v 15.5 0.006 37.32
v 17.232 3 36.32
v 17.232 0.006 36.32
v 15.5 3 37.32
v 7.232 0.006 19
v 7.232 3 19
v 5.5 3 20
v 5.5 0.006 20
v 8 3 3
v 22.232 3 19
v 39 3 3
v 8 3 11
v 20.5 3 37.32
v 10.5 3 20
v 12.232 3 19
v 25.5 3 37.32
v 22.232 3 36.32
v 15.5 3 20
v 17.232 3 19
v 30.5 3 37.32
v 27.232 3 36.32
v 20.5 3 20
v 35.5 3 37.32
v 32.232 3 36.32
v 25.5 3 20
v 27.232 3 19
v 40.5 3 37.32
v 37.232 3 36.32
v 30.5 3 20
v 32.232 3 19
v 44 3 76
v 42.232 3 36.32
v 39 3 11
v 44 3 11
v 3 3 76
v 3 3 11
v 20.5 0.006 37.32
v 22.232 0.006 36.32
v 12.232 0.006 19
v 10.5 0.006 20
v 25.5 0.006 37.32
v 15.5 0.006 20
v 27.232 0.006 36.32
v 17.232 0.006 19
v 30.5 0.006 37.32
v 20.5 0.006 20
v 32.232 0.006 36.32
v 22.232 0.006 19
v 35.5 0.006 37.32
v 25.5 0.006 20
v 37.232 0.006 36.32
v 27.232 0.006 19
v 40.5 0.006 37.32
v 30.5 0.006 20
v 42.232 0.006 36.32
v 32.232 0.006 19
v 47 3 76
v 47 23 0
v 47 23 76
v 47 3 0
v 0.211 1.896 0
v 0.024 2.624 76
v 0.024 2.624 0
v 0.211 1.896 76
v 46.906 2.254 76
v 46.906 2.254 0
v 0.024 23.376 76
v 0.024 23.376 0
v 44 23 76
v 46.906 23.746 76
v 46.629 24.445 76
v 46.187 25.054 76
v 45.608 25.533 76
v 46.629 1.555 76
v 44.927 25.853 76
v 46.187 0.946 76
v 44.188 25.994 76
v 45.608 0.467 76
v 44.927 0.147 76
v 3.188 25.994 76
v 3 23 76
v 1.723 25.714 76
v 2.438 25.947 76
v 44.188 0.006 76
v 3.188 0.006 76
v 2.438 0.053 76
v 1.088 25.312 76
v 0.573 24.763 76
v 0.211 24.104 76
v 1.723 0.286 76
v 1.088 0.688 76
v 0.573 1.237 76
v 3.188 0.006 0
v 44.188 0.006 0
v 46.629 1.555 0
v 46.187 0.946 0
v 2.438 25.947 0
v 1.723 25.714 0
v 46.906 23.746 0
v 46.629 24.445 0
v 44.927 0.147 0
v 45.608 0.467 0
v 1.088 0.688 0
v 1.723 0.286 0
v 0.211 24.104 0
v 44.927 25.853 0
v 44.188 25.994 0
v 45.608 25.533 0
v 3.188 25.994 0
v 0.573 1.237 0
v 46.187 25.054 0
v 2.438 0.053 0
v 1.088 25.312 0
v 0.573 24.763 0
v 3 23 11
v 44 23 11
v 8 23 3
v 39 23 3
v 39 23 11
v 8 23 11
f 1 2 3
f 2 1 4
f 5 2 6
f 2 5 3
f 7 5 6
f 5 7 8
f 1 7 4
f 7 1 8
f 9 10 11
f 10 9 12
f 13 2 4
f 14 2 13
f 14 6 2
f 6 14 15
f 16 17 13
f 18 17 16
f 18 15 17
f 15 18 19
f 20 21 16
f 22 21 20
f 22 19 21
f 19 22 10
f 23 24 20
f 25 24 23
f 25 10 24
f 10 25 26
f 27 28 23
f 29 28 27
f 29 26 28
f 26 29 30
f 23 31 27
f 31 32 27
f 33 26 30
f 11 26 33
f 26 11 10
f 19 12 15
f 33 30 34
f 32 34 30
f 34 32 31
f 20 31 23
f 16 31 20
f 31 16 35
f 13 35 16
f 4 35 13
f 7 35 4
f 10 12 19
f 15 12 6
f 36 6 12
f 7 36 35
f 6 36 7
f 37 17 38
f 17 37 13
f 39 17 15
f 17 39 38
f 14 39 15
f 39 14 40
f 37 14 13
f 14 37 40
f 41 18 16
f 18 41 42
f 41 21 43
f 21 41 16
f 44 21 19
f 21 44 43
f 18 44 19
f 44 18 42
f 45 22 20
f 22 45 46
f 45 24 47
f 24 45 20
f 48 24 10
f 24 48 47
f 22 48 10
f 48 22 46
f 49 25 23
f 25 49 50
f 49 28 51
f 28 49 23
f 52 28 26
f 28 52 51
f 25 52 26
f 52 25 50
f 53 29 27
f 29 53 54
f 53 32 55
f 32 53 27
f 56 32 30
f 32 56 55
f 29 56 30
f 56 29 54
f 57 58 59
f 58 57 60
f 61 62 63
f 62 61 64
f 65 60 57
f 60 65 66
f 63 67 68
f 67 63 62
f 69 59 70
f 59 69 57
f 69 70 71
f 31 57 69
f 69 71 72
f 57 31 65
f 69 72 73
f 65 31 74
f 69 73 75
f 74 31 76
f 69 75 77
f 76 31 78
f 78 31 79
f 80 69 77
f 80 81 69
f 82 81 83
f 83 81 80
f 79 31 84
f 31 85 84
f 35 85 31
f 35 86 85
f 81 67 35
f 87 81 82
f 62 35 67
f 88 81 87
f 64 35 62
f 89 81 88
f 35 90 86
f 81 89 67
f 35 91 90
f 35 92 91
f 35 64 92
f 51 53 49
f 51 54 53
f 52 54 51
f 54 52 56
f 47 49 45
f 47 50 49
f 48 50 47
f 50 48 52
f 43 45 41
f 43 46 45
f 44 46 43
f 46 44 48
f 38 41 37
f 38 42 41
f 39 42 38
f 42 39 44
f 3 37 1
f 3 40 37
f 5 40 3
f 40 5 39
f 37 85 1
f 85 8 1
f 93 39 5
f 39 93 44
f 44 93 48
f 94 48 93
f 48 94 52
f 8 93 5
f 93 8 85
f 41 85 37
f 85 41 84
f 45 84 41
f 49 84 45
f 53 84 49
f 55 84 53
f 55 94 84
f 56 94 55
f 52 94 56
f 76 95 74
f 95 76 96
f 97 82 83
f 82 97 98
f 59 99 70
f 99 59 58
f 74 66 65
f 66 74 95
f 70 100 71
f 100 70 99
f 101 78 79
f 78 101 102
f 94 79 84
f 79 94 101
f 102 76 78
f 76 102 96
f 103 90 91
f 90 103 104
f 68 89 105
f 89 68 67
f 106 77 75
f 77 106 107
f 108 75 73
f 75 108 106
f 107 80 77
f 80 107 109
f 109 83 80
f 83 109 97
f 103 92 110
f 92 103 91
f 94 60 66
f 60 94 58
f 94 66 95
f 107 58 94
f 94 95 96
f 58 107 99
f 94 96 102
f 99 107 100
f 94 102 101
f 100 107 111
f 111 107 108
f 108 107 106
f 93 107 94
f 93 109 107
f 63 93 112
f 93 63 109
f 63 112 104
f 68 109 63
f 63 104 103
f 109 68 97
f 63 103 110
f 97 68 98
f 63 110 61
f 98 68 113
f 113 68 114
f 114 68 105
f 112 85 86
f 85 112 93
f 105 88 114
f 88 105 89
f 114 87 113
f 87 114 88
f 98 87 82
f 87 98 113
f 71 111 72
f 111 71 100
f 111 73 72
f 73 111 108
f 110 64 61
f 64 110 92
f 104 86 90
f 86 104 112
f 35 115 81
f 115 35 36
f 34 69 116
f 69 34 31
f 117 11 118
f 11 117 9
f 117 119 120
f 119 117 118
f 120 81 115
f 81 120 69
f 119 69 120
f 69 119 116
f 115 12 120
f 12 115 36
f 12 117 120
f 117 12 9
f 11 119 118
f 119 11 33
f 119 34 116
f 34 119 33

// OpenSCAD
BB_LENGTH = 75;
BB_WIDTH = 41;
BB_HEIGHT = 20;
CASE_THICKNESS = 3;

union(){
    difference(){
        // exterior box
        translate([3,3,0]){
            $fn=25;
            minkowski(){
                cube([BB_WIDTH, BB_HEIGHT,  BB_LENGTH]);
                translate([0,0,0]){
                    cylinder(r=3, h=1);
                }
            }
        }
        // cut-out for board + battery
        translate([CASE_THICKNESS, CASE_THICKNESS, CASE_THICKNESS]){
            cube([BB_WIDTH, BB_HEIGHT, BB_LENGTH + (CASE_THICKNESS * 2)]);
        }
        // cut-outs for cooling (I should be able to calc. this, but I can't yet
        translate([5.5,0,0]){
            for(a=[0:5:25]){
                translate([a,-(CASE_THICKNESS-1),20]){
                    rotate([0,30,0]){
                        cube([2,(CASE_THICKNESS + 2), 20]);
                    }
                }
            }
        }
    }
    // support blocks
    translate([CASE_THICKNESS,CASE_THICKNESS,CASE_THICKNESS]){
        cube([5,20,8]);
    }
    translate([BB_WIDTH-2,CASE_THICKNESS,CASE_THICKNESS]){
        cube([5,20,8]);
    }
}
